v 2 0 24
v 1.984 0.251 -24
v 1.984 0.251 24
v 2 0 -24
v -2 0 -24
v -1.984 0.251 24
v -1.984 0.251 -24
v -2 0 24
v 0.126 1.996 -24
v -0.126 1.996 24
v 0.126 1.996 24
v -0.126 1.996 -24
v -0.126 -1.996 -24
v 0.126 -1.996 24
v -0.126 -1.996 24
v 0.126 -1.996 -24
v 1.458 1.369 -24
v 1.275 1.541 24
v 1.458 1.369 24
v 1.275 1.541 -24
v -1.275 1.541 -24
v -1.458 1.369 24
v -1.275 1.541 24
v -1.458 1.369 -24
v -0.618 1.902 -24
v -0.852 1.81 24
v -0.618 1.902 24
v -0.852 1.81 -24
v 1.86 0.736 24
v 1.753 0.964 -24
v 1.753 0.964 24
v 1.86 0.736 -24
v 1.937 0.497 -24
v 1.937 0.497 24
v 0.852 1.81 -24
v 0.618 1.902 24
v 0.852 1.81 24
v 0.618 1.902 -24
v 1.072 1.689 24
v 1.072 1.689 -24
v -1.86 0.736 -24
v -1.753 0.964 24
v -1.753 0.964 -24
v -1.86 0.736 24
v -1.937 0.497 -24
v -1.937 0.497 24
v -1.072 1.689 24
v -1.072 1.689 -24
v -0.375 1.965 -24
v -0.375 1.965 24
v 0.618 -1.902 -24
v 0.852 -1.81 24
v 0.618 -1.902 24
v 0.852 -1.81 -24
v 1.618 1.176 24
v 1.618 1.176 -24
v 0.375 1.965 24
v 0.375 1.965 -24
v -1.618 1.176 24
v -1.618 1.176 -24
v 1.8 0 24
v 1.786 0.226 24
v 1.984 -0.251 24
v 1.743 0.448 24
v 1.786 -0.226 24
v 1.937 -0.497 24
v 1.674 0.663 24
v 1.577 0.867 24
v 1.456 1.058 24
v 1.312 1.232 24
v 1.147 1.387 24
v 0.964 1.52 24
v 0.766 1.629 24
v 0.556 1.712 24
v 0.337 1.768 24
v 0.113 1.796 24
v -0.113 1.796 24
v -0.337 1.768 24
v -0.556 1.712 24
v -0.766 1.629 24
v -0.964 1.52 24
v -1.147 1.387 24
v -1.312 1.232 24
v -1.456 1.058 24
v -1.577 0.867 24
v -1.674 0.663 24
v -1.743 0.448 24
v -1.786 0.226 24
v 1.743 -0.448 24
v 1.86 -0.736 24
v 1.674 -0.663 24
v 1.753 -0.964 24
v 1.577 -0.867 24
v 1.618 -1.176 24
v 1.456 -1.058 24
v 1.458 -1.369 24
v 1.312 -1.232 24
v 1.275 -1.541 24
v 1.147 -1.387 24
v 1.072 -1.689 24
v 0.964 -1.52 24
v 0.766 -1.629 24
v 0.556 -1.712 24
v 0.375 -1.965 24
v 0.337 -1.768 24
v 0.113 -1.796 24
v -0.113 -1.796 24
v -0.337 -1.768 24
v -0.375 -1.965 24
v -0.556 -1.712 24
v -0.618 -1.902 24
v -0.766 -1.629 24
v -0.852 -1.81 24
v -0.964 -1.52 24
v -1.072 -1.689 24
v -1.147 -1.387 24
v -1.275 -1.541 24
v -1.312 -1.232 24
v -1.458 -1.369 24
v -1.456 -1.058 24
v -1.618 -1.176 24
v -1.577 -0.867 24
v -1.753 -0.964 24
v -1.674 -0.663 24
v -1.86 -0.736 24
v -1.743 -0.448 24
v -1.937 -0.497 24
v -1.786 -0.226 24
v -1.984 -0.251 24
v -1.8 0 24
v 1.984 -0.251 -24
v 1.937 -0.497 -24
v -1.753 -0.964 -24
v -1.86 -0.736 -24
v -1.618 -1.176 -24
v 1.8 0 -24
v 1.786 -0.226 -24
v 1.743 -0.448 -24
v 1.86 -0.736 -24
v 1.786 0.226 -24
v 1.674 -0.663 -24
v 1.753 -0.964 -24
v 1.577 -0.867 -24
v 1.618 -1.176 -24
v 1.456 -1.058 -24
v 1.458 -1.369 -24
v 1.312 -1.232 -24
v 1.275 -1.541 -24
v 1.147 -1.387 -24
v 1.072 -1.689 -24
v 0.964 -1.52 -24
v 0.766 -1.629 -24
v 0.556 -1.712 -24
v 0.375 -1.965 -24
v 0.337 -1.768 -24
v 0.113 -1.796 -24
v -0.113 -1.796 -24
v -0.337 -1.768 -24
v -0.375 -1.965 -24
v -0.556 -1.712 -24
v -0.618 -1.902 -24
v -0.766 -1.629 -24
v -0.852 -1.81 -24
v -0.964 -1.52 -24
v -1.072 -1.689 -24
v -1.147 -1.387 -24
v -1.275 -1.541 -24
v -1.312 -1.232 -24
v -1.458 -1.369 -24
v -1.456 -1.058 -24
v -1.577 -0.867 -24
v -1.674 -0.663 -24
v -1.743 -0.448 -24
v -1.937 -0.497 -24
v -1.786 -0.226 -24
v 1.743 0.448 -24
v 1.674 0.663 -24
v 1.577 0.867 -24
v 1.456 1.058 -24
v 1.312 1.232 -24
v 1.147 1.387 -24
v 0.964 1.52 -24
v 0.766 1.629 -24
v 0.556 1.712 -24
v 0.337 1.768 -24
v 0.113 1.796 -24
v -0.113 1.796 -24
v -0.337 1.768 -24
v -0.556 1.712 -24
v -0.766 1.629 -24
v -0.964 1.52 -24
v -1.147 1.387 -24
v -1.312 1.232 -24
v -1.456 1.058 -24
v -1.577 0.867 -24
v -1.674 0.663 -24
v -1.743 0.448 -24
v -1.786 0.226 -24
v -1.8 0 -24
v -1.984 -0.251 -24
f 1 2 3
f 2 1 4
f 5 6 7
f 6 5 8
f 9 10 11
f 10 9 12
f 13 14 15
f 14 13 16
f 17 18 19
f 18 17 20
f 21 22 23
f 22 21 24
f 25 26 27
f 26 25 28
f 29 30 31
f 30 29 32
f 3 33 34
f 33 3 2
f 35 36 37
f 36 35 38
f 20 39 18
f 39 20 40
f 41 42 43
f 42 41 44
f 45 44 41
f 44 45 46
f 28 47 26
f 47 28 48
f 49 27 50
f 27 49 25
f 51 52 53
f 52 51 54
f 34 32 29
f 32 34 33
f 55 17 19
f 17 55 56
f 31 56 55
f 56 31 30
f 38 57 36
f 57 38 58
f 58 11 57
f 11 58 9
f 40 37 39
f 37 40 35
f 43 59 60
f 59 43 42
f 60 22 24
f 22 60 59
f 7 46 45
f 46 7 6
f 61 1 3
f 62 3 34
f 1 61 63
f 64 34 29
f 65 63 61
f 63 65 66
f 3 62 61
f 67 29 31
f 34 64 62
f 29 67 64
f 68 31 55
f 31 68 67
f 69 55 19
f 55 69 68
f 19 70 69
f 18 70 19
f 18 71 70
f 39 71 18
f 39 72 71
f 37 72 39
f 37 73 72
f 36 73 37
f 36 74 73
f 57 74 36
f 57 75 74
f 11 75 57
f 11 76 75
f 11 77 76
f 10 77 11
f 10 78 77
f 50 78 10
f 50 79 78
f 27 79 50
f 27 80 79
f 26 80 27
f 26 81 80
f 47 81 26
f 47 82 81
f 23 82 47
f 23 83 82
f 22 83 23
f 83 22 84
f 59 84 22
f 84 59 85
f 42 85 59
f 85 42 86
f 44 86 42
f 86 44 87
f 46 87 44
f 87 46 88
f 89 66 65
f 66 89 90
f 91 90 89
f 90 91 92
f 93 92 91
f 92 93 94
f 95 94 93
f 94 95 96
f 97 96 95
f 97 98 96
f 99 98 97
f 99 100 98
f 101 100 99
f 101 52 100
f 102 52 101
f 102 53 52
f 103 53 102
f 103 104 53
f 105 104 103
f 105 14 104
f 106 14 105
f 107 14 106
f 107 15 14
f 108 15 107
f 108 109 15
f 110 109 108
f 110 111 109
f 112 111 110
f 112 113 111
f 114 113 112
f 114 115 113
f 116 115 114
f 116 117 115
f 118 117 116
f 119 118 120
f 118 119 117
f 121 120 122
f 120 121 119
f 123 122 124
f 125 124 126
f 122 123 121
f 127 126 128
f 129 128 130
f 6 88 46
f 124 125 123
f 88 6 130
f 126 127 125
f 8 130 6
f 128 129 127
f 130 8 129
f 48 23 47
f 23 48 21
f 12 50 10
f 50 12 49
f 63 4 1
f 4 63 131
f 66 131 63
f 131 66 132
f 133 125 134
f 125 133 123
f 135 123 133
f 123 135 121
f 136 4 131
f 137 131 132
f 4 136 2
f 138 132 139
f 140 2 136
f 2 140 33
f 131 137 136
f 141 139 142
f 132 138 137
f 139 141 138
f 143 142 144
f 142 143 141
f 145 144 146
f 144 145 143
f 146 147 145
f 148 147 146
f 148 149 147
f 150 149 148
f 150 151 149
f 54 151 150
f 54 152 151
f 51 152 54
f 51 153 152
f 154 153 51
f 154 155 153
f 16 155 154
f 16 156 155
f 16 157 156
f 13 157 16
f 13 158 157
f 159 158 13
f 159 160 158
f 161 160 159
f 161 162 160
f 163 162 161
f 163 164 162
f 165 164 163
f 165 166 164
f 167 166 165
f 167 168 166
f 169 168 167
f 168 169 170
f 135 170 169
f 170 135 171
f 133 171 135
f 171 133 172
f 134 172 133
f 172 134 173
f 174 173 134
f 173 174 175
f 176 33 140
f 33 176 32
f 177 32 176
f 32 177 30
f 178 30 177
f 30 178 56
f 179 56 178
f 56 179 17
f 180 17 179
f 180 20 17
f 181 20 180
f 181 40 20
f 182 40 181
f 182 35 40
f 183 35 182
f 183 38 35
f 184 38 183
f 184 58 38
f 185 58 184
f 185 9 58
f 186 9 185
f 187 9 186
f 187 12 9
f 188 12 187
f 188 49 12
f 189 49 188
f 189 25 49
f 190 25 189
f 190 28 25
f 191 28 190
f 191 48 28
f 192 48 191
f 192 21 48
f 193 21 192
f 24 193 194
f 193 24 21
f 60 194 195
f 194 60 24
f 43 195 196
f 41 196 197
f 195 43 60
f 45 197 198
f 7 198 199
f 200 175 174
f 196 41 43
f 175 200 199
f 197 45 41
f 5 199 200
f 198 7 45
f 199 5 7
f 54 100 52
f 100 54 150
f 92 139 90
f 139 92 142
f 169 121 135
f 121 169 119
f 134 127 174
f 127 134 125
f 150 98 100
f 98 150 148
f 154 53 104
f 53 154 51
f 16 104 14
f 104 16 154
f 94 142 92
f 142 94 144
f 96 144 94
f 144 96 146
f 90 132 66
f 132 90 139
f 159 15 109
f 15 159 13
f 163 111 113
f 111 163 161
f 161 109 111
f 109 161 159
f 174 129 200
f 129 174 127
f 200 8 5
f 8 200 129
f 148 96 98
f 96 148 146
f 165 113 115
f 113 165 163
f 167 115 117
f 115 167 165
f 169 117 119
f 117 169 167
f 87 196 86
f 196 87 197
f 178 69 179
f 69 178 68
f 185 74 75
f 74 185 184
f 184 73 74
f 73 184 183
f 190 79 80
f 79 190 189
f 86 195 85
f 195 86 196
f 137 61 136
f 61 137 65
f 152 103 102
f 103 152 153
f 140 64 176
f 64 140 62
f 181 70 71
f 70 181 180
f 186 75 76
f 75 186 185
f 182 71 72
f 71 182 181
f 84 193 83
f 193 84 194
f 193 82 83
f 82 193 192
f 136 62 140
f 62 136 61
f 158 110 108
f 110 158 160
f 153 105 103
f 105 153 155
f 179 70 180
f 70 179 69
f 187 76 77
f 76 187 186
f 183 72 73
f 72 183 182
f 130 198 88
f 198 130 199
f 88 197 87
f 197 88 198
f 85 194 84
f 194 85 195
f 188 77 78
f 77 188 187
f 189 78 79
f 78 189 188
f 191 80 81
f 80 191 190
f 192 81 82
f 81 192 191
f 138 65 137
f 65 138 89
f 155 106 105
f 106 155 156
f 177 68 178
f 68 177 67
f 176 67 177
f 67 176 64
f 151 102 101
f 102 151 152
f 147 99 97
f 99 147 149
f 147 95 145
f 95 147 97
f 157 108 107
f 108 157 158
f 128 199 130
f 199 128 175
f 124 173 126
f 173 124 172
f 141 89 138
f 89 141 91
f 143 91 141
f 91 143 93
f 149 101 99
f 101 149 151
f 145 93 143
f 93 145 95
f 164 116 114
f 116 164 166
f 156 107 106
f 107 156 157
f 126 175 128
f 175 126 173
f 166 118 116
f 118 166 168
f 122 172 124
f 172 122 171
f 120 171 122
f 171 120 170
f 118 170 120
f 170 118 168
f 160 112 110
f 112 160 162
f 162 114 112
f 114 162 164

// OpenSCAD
$fn = 50;


difference() {
	union() {
		translate(v = [0, 0, -24.0000000000]) {
			cylinder(h = 48, r = 2.0000000000);
		}
	}
	union() {
		translate(v = [0, 0, -100.0000000000]) {
			cylinder(h = 200, r = 1.8000000000);
		}
	}
}
